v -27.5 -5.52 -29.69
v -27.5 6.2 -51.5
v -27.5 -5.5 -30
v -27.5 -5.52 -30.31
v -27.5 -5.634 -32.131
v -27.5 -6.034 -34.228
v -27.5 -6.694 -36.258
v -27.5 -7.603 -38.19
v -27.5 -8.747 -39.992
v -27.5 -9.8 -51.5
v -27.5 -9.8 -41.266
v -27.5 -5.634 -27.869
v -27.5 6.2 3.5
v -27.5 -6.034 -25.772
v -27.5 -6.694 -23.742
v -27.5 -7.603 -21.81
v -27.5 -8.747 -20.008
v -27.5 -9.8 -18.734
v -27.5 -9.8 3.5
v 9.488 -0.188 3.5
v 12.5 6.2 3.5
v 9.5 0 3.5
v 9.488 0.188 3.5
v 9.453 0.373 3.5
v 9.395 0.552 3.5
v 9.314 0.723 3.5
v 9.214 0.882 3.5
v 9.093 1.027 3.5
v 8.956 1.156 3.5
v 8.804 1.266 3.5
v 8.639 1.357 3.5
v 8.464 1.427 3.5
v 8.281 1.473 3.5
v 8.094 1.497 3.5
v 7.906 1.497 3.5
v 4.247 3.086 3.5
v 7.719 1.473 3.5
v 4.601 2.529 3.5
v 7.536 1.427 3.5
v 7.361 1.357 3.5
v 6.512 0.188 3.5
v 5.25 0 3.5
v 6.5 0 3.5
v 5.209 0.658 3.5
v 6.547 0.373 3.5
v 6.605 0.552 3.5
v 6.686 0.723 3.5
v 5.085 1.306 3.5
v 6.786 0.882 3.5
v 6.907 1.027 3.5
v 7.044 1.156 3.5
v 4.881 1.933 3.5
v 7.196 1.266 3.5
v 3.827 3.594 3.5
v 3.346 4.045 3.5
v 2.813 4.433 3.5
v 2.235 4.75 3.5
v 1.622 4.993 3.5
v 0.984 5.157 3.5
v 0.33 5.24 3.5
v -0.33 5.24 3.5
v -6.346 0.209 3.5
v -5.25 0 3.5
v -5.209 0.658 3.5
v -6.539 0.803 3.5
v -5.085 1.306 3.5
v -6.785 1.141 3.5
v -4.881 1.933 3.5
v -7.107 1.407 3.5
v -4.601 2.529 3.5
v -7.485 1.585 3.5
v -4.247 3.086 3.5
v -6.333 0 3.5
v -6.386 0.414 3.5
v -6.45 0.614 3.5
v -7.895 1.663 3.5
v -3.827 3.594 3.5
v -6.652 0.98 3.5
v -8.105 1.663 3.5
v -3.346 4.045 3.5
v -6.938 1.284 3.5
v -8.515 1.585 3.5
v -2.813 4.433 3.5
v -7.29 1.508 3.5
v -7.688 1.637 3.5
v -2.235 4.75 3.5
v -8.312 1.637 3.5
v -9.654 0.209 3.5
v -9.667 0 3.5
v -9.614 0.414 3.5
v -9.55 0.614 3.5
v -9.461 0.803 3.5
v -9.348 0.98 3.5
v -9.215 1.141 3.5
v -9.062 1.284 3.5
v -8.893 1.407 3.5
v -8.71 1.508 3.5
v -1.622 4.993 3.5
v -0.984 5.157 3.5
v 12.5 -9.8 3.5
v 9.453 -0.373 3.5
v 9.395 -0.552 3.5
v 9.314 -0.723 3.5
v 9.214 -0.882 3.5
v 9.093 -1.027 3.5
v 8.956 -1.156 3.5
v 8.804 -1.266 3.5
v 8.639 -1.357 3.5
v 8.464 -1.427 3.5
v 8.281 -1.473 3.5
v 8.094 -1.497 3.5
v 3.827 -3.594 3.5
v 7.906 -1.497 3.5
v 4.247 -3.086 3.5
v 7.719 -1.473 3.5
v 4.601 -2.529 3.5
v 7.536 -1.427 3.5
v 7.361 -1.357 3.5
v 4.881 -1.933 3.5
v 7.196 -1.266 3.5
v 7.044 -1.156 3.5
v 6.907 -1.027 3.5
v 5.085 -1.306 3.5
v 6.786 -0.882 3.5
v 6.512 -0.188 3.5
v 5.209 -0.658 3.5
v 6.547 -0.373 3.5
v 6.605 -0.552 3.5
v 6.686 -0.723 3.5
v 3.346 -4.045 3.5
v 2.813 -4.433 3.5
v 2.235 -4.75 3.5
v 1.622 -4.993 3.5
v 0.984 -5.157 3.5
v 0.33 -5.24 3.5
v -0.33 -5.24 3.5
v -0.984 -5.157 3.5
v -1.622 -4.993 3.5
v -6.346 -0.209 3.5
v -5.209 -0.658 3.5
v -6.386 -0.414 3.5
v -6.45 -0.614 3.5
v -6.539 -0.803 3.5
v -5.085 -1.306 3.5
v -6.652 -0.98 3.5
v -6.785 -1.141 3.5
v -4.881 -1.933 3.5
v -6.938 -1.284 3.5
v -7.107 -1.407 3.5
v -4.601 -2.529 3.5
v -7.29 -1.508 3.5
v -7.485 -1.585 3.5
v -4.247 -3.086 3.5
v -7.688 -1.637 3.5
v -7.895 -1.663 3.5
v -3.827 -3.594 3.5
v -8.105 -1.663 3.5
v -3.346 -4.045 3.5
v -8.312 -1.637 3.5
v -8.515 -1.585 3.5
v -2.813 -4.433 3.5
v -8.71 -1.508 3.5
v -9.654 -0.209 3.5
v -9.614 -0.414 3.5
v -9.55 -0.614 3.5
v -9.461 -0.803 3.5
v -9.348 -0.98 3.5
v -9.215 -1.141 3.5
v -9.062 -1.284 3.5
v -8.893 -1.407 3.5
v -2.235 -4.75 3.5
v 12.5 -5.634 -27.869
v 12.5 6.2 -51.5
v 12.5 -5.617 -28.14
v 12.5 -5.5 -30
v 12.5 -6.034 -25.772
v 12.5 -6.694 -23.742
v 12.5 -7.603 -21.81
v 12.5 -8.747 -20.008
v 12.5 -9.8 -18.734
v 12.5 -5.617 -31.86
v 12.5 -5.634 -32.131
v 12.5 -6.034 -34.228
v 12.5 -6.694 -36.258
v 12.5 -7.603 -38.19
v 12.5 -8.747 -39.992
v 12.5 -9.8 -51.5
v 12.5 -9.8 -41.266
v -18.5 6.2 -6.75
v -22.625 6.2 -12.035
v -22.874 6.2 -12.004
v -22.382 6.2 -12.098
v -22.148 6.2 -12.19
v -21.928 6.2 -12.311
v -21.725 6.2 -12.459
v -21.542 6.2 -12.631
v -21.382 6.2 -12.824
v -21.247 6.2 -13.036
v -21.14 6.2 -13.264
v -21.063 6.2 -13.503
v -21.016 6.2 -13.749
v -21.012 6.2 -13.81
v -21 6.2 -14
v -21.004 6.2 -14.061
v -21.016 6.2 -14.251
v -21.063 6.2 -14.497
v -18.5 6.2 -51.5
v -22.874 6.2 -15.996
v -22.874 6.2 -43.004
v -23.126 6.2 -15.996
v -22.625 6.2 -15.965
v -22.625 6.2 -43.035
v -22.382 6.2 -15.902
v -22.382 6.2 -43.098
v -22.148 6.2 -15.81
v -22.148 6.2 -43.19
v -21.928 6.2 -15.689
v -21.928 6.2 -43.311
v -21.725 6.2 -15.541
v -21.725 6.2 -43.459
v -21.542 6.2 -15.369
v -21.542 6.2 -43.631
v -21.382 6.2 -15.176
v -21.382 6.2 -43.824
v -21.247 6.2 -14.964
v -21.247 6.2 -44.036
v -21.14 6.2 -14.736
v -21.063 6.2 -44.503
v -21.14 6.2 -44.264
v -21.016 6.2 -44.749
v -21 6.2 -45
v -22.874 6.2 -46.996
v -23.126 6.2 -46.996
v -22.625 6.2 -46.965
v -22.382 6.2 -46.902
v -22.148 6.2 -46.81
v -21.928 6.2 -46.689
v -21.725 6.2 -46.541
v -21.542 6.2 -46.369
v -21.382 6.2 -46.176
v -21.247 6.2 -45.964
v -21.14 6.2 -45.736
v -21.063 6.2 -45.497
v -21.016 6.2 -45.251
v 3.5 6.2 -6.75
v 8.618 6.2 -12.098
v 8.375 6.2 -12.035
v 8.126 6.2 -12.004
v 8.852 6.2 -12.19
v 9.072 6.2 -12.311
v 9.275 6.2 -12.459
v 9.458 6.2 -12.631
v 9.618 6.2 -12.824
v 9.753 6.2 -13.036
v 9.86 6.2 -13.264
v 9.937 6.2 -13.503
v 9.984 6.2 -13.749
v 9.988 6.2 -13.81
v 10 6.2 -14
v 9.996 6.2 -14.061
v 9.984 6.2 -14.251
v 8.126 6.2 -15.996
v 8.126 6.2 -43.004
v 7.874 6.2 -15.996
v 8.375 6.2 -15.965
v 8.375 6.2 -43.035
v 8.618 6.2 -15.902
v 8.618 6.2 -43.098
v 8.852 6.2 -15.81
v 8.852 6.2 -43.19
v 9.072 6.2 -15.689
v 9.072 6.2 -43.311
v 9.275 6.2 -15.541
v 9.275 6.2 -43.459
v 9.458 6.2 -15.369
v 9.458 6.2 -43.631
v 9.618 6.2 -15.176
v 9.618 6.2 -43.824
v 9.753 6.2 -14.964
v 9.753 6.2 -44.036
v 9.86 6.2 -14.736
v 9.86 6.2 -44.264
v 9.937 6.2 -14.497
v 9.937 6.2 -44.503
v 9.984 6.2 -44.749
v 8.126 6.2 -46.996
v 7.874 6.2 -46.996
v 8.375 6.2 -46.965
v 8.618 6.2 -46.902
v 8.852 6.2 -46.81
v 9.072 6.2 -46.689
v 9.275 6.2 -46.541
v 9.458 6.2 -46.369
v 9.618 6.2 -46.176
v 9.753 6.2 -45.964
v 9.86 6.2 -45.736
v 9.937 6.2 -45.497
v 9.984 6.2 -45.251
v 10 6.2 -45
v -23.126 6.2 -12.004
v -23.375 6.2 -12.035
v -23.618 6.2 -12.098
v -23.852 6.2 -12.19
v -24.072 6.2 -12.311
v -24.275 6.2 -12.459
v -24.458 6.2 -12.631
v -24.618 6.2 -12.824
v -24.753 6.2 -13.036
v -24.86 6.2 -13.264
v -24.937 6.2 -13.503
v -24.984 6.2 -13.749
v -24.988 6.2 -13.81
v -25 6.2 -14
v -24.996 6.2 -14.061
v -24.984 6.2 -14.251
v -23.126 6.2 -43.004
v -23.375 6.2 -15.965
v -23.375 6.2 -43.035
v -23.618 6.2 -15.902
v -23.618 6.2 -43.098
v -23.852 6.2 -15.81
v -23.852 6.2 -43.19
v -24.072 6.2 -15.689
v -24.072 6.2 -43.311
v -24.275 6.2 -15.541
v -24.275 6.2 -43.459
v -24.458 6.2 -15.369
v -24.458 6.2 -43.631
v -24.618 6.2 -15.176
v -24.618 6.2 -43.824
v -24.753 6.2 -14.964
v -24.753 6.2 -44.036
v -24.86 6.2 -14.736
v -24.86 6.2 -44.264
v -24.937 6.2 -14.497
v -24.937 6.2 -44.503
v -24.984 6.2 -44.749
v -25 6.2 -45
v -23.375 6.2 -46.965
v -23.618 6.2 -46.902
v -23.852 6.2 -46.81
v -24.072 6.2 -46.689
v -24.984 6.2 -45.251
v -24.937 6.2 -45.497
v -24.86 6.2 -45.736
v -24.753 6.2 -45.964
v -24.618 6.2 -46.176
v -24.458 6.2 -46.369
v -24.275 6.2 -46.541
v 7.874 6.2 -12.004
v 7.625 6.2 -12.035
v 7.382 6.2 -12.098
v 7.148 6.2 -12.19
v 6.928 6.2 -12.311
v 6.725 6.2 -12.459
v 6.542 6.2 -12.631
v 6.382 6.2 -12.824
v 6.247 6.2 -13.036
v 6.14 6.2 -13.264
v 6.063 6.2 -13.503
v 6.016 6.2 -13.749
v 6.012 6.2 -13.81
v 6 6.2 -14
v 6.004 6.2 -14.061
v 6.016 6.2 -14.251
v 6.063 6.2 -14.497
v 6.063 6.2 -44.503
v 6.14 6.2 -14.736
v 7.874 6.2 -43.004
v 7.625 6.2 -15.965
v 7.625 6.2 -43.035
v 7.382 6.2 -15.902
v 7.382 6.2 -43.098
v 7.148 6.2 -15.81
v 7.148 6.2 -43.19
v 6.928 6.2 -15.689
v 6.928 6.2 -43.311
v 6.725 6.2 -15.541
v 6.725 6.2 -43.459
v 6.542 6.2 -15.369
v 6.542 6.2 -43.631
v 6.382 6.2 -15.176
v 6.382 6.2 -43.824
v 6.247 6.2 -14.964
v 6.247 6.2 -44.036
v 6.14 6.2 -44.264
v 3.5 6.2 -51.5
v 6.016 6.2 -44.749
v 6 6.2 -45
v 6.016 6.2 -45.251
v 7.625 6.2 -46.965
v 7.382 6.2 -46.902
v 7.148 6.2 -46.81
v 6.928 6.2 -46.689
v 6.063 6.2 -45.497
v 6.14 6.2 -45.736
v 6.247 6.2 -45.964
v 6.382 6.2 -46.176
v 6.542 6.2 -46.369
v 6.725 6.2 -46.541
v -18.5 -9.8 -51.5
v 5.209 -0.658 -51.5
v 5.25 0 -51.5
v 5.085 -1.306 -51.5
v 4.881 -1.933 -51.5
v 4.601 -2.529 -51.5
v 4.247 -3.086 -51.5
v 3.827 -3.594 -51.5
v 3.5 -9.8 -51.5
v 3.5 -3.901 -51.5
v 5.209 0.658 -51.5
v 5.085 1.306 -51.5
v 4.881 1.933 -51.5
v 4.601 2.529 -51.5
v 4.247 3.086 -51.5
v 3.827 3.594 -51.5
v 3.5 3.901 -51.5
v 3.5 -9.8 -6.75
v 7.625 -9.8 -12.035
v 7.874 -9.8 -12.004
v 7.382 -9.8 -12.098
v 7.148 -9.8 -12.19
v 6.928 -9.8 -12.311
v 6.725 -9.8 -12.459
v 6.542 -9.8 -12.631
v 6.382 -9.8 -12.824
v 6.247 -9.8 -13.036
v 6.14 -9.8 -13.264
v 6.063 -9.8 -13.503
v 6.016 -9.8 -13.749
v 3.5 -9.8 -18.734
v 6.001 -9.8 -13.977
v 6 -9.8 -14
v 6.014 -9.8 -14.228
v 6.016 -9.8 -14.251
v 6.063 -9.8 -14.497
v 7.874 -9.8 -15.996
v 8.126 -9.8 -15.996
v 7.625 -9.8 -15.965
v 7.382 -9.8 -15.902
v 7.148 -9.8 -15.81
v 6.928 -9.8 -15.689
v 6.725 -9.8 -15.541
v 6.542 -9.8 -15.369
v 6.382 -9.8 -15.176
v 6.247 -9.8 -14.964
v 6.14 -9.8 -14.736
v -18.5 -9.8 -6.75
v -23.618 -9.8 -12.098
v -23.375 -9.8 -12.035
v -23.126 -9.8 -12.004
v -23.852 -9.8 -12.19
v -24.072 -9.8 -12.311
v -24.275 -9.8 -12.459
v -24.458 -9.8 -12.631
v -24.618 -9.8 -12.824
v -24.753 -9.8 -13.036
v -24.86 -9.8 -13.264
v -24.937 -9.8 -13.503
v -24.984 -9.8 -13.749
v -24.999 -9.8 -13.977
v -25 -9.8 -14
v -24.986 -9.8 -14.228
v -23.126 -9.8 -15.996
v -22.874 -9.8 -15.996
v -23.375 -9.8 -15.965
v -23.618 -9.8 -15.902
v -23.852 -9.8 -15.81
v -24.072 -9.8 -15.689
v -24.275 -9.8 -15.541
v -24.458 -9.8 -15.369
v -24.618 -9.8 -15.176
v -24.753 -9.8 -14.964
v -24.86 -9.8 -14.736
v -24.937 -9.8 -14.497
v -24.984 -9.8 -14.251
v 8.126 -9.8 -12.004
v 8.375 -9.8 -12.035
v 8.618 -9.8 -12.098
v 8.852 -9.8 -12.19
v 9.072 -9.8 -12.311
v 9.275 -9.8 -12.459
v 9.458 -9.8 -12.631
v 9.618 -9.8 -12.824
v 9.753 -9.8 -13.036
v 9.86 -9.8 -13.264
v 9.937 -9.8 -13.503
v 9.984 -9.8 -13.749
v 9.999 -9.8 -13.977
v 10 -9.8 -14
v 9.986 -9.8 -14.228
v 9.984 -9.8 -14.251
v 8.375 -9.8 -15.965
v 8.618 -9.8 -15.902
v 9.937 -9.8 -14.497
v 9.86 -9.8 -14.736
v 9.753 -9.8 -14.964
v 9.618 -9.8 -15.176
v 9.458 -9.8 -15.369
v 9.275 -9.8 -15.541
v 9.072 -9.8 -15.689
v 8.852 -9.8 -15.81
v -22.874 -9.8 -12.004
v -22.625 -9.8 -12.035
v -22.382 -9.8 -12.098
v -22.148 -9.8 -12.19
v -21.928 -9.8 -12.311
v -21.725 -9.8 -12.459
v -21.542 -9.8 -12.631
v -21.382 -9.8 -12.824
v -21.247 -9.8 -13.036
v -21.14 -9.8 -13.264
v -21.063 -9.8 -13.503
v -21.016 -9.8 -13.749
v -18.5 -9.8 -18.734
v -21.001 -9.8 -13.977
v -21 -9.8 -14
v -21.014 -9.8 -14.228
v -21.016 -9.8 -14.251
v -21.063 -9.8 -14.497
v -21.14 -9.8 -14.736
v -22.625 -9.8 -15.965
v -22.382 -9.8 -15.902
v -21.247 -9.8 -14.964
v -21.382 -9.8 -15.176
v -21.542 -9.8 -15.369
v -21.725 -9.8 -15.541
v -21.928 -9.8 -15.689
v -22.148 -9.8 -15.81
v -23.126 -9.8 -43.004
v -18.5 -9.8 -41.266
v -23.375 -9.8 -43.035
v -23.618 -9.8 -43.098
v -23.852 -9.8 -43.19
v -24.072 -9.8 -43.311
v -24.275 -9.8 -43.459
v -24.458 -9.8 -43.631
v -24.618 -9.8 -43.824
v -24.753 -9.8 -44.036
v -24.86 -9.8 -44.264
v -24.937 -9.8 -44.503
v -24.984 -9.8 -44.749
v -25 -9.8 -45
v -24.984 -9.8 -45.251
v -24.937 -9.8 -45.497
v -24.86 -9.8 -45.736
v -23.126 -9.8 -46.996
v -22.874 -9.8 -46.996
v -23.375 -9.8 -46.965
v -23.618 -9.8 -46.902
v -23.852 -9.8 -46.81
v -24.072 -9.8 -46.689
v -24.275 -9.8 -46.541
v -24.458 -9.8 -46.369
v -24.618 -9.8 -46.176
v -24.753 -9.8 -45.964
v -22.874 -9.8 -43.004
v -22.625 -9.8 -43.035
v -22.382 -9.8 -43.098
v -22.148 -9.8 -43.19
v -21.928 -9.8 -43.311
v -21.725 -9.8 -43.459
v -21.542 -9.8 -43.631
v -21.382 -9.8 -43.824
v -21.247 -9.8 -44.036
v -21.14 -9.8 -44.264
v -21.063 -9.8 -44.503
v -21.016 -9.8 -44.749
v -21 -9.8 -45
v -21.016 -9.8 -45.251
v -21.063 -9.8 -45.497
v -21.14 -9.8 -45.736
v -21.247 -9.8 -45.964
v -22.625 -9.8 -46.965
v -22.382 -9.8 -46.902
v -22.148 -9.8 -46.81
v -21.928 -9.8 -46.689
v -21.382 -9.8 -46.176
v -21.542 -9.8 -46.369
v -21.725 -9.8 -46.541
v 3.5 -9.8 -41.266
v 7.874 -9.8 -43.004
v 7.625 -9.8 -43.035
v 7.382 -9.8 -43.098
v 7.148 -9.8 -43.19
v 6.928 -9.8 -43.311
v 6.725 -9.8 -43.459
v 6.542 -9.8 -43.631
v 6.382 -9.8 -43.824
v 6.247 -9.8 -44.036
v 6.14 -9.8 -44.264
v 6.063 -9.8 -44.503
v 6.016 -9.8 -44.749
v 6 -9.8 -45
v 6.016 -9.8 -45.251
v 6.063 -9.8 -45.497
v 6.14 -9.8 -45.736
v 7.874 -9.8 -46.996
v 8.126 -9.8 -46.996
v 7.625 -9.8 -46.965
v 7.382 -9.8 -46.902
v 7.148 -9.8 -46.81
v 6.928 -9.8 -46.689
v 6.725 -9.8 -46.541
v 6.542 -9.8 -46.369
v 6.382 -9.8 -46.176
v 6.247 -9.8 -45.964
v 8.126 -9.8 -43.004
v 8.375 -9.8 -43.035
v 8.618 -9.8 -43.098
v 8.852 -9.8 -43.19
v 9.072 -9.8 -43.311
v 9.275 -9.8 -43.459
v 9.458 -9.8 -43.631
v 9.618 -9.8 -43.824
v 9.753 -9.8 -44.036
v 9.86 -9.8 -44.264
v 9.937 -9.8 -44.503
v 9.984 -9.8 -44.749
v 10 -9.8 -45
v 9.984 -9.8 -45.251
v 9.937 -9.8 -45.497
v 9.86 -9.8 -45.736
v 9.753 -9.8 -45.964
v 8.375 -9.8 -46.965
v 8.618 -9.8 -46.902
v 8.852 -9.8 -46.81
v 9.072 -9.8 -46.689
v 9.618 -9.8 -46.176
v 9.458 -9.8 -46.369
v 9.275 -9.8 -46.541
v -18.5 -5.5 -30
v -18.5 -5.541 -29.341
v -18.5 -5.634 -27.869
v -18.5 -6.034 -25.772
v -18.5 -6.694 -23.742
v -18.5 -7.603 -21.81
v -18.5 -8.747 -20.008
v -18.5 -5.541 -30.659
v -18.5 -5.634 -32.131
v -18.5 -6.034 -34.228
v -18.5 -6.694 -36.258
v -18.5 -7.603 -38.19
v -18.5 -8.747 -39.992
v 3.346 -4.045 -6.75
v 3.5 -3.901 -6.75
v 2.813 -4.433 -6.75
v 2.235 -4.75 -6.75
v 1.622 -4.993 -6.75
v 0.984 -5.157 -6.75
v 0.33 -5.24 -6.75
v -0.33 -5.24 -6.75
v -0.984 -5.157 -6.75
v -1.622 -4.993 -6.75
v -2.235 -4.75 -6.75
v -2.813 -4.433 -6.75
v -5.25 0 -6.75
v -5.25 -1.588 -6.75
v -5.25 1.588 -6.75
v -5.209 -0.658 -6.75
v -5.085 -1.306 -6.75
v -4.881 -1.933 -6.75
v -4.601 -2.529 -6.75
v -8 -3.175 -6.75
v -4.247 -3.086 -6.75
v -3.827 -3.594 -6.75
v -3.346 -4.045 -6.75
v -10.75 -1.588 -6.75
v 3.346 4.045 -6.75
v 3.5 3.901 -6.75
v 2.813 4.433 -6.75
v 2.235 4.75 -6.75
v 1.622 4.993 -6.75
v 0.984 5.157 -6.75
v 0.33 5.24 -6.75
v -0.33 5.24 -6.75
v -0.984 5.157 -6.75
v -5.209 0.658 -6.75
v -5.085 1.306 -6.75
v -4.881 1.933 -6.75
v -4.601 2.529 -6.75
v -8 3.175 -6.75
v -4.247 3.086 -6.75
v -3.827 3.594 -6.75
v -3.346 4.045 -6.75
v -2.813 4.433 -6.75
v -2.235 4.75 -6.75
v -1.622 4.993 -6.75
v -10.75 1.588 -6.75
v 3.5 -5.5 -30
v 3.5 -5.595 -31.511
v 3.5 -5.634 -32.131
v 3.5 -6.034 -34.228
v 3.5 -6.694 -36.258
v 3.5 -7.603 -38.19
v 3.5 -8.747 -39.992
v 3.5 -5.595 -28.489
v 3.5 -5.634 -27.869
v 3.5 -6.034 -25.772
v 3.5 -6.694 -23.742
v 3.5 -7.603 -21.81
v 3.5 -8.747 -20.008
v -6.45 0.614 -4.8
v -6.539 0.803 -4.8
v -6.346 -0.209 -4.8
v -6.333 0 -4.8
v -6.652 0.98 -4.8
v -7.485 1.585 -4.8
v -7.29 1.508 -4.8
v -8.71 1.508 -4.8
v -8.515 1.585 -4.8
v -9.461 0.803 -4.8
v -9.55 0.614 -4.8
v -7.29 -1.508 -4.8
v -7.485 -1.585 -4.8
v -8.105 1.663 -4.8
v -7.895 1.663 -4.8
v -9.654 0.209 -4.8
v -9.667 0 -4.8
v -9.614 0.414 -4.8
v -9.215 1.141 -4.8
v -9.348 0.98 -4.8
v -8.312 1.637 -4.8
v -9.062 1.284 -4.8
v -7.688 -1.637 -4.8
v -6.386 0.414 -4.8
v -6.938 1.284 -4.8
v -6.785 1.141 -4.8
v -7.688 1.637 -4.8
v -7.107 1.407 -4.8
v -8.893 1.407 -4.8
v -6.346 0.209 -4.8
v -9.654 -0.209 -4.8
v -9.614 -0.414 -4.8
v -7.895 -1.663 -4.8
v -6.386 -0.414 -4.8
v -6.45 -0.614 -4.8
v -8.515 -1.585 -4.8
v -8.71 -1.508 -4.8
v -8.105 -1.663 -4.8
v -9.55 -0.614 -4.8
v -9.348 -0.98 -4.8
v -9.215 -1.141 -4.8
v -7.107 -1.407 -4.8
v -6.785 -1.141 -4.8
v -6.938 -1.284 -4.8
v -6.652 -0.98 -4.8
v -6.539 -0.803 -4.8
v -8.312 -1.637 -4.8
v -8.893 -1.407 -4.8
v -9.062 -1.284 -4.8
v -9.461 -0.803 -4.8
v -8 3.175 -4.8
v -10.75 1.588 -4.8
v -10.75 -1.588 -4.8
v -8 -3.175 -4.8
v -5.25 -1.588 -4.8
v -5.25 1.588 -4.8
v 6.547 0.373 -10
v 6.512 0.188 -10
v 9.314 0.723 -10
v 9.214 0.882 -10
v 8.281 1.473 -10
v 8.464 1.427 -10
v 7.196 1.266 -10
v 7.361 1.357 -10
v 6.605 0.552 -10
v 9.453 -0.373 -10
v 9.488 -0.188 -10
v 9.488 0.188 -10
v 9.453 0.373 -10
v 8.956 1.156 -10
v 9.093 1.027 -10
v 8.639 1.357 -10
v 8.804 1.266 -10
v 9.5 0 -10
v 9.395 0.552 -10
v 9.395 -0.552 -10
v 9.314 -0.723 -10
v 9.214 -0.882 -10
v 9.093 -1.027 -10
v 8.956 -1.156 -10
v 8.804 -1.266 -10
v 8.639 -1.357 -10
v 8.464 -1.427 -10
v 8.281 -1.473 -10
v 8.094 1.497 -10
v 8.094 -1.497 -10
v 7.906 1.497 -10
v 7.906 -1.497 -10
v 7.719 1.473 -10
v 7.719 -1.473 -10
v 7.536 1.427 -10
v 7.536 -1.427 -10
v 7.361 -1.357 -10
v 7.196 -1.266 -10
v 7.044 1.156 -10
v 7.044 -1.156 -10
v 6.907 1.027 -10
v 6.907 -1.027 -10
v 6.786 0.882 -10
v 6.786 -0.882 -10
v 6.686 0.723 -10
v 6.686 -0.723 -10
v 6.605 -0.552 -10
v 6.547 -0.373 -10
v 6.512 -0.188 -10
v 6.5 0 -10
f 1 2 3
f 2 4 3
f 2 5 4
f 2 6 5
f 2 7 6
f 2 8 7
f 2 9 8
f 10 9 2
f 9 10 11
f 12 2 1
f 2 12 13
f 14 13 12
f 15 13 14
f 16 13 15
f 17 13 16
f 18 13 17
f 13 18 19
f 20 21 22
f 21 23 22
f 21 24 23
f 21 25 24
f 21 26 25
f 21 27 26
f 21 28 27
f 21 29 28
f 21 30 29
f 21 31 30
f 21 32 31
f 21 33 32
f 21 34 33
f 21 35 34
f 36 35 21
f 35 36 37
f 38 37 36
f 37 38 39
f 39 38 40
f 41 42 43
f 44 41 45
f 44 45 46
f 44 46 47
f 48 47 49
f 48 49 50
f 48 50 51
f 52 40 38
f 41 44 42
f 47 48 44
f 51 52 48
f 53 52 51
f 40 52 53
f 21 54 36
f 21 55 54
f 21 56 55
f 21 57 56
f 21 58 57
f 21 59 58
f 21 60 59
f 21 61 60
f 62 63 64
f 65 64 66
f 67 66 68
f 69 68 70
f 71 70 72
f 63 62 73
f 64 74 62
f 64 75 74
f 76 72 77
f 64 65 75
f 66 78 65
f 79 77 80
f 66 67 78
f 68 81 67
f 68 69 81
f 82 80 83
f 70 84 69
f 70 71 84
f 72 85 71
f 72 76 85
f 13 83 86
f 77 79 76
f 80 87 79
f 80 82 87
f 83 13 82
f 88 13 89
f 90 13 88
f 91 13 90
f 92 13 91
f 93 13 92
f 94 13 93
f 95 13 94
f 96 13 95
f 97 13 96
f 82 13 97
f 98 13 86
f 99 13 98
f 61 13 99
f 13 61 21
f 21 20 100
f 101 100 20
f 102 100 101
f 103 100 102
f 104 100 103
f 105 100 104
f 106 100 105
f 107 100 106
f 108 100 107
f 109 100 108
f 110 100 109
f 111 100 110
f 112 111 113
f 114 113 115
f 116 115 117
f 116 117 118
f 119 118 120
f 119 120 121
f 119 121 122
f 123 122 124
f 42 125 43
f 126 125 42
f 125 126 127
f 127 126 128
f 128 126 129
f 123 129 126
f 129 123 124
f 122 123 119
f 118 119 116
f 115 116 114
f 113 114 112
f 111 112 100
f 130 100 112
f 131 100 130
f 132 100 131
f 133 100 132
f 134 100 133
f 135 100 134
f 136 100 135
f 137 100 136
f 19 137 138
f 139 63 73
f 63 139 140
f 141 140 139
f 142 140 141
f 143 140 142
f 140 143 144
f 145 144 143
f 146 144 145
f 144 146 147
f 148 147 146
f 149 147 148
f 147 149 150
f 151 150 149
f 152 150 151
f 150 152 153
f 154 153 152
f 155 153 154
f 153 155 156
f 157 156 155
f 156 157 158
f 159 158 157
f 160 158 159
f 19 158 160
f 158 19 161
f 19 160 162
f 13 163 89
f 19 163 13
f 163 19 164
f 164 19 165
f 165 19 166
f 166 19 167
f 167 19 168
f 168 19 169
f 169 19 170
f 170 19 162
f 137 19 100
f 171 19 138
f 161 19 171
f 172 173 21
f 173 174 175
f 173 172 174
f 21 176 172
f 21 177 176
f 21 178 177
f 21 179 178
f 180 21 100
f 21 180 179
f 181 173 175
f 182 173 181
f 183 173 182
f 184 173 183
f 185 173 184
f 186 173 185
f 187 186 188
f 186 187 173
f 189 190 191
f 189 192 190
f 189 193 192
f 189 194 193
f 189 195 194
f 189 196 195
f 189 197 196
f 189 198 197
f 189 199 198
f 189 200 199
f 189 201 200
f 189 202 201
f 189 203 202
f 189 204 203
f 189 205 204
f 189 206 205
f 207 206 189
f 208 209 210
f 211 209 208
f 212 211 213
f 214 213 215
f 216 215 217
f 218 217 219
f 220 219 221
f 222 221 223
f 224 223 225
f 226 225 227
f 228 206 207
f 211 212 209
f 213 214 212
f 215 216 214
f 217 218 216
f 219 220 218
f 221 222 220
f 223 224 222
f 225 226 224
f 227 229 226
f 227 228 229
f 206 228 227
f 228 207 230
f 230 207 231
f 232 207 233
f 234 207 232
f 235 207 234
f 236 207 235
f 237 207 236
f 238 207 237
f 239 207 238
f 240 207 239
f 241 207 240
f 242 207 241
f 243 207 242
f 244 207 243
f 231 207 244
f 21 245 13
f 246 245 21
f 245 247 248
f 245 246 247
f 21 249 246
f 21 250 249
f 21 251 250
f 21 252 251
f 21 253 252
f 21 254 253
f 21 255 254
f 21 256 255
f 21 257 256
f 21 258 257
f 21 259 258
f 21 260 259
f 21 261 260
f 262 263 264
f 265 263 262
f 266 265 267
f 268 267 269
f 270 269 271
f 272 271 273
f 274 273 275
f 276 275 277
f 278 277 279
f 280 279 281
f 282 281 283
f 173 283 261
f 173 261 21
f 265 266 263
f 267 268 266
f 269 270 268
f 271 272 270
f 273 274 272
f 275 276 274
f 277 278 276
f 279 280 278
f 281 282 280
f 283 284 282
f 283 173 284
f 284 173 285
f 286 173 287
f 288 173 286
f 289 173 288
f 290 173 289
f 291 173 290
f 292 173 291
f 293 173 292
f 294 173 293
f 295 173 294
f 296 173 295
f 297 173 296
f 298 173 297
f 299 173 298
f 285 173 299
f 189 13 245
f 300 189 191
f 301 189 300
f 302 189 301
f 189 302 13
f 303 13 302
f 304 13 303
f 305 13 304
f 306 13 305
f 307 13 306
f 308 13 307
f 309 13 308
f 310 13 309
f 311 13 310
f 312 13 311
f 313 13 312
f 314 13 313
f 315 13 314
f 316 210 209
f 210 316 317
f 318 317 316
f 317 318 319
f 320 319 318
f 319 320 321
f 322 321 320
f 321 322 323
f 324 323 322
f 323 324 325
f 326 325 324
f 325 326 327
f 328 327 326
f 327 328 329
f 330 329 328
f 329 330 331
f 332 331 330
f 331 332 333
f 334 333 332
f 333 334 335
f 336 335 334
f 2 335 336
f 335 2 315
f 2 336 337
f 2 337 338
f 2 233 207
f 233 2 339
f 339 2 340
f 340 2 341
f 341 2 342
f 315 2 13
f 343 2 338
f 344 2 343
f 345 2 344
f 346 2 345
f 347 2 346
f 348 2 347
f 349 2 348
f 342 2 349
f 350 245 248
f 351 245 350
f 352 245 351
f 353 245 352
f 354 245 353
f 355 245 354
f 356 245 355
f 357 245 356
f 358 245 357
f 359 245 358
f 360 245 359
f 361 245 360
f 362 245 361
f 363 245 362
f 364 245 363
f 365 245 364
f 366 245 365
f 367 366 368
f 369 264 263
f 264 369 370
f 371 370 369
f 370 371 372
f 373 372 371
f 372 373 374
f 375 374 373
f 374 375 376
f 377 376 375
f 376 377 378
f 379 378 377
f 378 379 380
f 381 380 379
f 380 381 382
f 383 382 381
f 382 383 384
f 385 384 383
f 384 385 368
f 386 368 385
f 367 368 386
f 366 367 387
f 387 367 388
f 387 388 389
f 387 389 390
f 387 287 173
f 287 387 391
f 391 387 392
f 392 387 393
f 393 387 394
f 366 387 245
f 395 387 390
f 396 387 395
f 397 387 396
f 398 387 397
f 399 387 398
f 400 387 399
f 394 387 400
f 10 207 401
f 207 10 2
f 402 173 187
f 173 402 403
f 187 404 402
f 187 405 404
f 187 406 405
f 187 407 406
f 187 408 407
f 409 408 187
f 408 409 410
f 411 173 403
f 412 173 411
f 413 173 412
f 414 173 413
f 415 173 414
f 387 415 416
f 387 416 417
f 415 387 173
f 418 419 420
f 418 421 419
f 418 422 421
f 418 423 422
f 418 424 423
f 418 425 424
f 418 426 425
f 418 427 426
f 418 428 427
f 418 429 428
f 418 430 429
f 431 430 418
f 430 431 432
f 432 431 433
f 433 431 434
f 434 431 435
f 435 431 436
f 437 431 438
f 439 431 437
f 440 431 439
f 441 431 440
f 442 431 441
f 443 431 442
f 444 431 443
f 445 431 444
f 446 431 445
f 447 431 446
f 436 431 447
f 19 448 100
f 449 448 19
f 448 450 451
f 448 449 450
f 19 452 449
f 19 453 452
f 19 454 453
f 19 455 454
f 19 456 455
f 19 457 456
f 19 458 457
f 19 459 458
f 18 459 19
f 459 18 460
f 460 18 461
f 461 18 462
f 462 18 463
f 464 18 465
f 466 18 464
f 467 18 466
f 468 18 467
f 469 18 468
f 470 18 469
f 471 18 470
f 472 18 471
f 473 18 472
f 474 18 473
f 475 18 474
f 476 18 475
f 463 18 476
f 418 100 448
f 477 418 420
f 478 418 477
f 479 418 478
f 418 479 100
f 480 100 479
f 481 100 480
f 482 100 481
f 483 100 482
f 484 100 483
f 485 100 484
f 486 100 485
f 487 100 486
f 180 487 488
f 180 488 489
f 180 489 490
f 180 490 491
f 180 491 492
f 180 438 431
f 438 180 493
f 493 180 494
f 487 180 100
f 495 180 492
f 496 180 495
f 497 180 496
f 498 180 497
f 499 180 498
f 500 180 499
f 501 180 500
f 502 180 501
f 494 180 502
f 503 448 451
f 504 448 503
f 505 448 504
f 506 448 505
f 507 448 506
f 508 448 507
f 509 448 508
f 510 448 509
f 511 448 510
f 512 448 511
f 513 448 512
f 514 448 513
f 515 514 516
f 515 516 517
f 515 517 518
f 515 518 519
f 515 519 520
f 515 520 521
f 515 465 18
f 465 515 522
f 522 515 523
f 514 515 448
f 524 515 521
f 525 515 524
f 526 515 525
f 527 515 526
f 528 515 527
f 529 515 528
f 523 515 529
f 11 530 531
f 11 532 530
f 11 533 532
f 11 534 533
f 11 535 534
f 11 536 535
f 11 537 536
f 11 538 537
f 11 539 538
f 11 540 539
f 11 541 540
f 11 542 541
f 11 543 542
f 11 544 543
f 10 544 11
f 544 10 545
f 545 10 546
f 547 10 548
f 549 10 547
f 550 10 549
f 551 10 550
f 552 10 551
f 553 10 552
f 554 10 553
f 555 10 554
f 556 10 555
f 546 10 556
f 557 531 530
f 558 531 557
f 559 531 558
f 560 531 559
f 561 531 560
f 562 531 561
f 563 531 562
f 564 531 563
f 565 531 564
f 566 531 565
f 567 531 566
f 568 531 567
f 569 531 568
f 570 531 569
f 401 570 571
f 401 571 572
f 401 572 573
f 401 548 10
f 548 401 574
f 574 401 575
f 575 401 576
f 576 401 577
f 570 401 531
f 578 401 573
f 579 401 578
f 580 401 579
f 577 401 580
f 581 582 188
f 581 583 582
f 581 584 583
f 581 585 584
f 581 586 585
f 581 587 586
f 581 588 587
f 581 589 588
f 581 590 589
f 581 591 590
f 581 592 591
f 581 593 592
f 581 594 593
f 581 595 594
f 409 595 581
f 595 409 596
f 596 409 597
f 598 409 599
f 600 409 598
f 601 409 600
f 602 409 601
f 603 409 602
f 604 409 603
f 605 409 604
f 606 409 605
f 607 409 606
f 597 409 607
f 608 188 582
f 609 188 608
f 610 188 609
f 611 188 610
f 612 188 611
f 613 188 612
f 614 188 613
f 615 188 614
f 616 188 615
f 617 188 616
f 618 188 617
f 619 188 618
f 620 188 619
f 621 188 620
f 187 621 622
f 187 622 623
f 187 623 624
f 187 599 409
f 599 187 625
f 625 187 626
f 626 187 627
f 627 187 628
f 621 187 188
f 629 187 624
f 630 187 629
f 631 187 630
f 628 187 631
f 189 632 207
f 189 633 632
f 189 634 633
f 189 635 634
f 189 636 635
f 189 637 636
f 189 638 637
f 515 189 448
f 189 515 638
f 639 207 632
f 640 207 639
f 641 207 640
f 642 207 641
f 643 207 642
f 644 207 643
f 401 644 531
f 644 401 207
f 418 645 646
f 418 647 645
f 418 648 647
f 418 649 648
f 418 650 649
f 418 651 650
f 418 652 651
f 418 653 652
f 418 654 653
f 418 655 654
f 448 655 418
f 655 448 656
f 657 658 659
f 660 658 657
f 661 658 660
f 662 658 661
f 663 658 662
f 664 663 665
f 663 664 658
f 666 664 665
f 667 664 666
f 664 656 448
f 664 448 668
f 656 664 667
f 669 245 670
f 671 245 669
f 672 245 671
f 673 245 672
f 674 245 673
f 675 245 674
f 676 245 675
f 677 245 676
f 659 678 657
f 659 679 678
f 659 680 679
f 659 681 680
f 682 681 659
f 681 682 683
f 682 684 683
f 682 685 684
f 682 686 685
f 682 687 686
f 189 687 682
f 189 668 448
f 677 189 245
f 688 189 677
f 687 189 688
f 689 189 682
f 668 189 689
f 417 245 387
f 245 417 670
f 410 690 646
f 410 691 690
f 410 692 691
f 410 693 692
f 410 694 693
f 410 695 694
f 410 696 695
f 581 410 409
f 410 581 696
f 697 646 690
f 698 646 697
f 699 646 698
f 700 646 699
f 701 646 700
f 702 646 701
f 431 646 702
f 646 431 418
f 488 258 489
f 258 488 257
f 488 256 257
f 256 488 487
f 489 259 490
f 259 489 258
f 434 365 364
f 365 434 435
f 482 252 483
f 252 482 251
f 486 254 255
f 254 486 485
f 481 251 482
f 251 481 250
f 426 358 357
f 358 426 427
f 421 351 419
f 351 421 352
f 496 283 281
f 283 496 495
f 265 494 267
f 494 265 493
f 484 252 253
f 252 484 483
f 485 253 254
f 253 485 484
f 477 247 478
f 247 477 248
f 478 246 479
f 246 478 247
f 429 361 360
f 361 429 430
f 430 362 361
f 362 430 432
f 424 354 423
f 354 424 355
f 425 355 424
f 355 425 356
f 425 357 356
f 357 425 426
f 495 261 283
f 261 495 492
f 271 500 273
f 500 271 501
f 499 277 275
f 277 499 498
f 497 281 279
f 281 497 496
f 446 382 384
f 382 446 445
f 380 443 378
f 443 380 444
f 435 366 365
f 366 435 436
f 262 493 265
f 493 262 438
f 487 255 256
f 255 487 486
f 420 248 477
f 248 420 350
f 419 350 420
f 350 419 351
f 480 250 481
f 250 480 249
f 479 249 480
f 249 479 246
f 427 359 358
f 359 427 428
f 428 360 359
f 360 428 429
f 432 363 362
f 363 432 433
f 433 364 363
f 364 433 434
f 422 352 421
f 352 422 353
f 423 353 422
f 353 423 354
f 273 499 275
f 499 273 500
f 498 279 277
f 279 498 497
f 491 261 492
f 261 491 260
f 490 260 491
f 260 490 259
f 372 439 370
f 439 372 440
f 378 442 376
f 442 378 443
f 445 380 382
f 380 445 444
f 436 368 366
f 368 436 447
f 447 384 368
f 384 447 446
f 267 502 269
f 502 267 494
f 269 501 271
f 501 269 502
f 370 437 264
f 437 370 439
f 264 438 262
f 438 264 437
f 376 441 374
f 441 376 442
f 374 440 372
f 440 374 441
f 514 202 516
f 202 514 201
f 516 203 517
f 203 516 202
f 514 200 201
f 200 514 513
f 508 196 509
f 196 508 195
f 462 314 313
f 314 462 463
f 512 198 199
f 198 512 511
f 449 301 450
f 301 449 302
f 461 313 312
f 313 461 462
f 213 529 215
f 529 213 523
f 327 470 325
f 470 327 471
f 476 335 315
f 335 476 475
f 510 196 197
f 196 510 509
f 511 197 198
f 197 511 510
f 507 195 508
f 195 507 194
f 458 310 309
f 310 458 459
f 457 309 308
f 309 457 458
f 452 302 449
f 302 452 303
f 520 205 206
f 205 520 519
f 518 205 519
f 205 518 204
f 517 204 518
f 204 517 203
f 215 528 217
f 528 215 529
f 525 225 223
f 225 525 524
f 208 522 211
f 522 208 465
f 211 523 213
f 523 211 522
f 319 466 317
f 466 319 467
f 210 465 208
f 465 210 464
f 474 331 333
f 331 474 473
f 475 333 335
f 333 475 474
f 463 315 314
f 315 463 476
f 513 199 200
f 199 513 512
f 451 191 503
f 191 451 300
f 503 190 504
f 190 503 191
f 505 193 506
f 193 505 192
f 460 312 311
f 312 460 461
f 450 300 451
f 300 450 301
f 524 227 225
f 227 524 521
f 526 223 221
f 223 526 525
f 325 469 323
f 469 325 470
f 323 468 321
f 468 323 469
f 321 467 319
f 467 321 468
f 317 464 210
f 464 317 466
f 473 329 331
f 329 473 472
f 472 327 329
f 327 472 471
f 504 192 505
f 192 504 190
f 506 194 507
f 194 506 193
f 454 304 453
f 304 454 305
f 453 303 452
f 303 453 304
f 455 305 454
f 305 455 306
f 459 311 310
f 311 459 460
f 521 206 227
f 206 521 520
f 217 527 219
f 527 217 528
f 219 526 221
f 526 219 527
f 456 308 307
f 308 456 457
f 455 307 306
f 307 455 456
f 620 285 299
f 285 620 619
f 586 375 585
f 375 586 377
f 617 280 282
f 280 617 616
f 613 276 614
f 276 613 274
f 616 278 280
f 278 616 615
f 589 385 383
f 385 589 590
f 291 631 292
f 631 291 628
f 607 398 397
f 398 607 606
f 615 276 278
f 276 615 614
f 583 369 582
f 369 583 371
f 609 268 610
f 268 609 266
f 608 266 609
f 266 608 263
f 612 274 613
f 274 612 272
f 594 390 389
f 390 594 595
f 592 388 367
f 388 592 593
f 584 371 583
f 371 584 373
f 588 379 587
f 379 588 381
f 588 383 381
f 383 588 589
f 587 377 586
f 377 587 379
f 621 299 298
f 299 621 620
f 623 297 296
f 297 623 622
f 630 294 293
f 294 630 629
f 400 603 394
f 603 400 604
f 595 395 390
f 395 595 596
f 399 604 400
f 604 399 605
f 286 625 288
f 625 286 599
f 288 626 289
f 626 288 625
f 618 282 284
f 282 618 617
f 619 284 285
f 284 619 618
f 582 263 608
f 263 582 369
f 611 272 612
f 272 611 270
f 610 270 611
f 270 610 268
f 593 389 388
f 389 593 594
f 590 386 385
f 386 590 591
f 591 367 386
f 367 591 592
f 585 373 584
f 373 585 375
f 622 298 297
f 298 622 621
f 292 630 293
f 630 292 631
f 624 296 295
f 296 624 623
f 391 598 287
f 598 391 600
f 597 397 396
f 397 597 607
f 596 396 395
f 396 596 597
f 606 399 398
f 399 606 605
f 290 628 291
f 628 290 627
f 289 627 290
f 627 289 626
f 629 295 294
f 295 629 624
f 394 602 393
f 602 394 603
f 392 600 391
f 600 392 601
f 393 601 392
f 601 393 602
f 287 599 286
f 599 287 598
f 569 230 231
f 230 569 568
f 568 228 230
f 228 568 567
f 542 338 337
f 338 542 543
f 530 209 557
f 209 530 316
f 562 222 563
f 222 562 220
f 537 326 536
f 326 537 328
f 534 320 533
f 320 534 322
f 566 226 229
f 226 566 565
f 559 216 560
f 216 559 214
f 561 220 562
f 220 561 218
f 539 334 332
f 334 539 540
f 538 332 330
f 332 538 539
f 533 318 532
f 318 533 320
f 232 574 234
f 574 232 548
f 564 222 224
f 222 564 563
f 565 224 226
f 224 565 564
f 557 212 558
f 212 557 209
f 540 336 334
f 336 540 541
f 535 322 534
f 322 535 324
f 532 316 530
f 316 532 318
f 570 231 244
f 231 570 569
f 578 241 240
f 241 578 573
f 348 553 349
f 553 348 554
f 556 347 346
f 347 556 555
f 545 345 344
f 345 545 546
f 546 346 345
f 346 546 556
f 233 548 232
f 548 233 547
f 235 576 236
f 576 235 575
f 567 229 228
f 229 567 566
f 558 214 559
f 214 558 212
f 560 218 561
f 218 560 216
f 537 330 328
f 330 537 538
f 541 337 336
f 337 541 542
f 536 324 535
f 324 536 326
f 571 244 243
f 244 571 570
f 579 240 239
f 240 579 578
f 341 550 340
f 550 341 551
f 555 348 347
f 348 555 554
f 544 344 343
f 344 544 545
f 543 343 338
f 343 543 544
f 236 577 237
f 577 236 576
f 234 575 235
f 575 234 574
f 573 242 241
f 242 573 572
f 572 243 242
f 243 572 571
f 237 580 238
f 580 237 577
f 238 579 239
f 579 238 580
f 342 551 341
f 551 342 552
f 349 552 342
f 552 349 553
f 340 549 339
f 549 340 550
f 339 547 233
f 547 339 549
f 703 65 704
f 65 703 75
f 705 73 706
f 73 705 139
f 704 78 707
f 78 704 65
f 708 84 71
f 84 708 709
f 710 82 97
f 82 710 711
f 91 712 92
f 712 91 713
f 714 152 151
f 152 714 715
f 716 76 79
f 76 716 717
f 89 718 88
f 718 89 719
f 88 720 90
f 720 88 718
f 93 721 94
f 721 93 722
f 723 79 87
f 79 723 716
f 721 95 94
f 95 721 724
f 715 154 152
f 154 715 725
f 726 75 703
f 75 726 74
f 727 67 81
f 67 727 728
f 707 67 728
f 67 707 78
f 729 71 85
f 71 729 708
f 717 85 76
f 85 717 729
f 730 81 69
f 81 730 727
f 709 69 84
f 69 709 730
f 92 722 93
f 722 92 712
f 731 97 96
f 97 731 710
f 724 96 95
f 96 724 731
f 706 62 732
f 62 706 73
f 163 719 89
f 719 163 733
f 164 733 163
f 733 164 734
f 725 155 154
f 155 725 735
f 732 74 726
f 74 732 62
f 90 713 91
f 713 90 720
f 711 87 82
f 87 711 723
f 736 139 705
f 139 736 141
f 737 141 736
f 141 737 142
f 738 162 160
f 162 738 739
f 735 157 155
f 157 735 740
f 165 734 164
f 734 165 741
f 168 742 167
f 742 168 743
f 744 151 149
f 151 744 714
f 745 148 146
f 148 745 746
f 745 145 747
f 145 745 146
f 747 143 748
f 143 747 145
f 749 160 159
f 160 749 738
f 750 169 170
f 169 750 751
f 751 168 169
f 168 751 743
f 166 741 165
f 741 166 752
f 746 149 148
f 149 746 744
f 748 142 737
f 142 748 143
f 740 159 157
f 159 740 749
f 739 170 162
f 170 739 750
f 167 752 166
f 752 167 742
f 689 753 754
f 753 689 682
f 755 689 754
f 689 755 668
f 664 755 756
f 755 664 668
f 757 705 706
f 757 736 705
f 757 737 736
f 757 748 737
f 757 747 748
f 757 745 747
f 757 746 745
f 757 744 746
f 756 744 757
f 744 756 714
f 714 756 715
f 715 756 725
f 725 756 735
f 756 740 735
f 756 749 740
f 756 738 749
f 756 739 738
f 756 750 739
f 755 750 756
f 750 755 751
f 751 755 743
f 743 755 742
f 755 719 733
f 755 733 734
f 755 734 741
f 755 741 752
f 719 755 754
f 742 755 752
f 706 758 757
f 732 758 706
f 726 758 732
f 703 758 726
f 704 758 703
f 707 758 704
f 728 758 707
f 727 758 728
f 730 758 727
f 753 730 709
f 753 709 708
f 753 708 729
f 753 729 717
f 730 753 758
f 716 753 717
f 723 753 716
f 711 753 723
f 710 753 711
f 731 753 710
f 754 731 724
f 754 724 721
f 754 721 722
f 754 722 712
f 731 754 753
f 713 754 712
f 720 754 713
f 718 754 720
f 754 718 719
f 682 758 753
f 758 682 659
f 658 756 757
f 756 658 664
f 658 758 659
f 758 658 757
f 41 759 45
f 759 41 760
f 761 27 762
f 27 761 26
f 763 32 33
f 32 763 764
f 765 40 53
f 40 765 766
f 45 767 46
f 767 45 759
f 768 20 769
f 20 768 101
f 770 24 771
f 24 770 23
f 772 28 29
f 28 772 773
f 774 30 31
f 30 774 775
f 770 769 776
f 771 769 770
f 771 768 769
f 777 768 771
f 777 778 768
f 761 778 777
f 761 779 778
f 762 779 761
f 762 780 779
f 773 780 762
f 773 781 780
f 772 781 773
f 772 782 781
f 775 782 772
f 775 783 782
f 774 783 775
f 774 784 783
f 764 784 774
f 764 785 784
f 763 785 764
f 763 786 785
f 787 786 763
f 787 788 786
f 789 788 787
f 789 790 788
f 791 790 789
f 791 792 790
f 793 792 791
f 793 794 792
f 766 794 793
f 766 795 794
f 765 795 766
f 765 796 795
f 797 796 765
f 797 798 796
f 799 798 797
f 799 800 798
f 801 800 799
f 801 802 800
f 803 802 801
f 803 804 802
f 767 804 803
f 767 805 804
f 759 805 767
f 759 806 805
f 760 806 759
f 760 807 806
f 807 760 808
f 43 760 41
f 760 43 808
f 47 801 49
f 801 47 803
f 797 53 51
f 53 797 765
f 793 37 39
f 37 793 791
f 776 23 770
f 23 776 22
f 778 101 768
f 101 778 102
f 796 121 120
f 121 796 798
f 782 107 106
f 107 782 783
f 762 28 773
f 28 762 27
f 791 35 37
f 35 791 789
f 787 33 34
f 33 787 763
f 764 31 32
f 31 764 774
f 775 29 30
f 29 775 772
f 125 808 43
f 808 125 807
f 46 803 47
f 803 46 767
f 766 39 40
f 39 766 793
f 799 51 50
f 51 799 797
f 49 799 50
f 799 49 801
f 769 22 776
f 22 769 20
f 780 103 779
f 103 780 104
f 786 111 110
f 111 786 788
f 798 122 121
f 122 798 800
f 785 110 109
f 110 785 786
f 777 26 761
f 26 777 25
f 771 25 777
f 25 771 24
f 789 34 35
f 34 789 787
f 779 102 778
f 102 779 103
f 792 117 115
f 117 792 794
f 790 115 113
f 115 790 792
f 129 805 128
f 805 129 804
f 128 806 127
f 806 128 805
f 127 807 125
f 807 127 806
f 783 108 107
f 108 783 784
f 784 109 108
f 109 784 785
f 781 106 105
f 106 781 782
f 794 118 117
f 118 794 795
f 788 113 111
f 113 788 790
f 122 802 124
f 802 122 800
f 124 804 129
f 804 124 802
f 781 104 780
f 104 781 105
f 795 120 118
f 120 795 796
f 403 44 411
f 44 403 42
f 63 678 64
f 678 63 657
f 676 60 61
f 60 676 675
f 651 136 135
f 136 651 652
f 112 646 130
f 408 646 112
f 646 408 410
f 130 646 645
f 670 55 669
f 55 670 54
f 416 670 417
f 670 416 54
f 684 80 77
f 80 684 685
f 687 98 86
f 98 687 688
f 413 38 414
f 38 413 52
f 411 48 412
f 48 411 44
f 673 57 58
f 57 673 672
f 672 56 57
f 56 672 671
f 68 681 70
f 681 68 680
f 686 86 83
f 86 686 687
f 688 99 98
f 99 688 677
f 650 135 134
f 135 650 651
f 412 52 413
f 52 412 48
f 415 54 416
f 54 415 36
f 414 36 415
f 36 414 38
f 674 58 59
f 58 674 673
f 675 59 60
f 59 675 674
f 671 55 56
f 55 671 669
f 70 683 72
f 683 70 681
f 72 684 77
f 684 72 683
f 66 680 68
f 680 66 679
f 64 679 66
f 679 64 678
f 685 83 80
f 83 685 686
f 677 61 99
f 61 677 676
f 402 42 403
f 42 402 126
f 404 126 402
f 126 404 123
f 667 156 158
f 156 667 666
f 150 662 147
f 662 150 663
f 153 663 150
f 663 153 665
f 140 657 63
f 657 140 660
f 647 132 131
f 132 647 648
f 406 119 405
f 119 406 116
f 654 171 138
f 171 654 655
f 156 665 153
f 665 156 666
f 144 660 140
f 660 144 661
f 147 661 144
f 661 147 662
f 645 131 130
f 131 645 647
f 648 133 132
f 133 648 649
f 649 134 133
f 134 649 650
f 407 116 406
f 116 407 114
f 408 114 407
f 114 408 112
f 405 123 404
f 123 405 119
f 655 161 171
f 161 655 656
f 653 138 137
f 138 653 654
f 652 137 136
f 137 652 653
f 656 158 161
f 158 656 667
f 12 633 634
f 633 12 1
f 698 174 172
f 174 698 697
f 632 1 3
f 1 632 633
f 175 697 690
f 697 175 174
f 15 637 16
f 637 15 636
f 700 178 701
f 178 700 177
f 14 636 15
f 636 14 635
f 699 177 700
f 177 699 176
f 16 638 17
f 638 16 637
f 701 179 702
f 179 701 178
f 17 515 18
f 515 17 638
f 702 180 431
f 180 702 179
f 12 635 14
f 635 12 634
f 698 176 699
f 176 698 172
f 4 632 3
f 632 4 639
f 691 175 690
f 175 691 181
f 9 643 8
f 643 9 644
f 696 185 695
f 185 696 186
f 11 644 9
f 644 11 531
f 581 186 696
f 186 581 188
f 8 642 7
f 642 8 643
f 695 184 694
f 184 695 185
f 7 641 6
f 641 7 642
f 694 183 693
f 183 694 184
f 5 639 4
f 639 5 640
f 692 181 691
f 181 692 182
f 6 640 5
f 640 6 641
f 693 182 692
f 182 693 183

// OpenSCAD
// file: nutsnbolts/data-access.scad
// Norm Nuts and Bolts - a OpenSCAD library
// Copyright (C) 2012  Johannes Kneer

// This program is free software: you can redistribute it and/or modify
// it under the terms of the GNU General Public License as published by
// the Free Software Foundation, either version 3 of the License, or
// (at your option) any later version.

// This program is distributed in the hope that it will be useful,
// but WITHOUT ANY WARRANTY; without even the implied warranty of
// MERCHANTABILITY or FITNESS FOR A PARTICULAR PURPOSE.  See the
// GNU General Public License for more details.

// You should have received a copy of the GNU General Public License
// along with this program.  If not, see <http://www.gnu.org/licenses/>.


// DATABASE ACCESS FUNCTIONS AND CONSTANTS



// == CONSTANTS ==

// screw table access keys
_NB_S_DESC            = 0;
_NB_S_FAMKEY			    = 1;
_NB_S_LENGTH          = 2;
_NB_S_NOTHREAD_LENGTH = 3;

_NB_F_DESC			      = 0;
_NB_F_OUTER_DIA       = 1;
_NB_F_INNER_DIA       = 2;
_NB_F_LEAD            = 3;
_NB_F_KEY             = 4;
_NB_F_KEY_DEPTH       = 5;
_NB_F_HEAD_HEIGHT     = 6;
_NB_F_HEAD_DIA        = 7;
_NB_F_NUT_KEY         = 8;
_NB_F_NUT_HEIGHT      = 9;
_NB_F_PITCH_FINE      = 10;
_NB_F_PITCH_MEDIUM    = 11;
_NB_F_PITCH_COARSE    = 12;


// == FUNCTIONS ==

// _get_screw("descriptor")   with descriptor = M8x25
//   find the line for a general object in the data matrix

function _get_screw(n) = data_screw[search([n], data_screw)[0]];
function _get_screw_fam(n) = data_screw_fam[search([_get_screw(n)[_NB_S_FAMKEY]], data_screw_fam)[0]];

function _get_fam(n) = data_screw_fam[search([n], data_screw_fam)[0]];


// _get_XXXXX("descriptor") functions
// find a single property in the database

function _get_desc(n)        = _get_screw(n)[_NB_S_DESC];
function _get_famkey(n)         = _get_screw(n)[_NB_S_FAMKEY];
function _get_length(n)      = _get_screw(n)[_NB_S_LENGTH];
function _get_nt_length(n)   = _get_screw(n)[_NB_S_NOTHREAD_LENGTH];

function _get_outer_dia(n)   = _get_screw_fam(n)[_NB_F_OUTER_DIA];
function _get_inner_dia(n)   = _get_screw_fam(n)[_NB_F_INNER_DIA];
function _get_lead(n)        = _get_screw_fam(n)[_NB_F_LEAD];
function _get_head_height(n) = _get_screw_fam(n)[_NB_F_HEAD_HEIGHT];
function _get_head_dia(n)    = _get_screw_fam(n)[_NB_F_HEAD_DIA];
function _get_nut_key(n)     = _get_screw_fam(n)[_NB_F_NUT_KEY];
function _get_nut_height(n)  = _get_screw_fam(n)[_NB_F_NUT_HEIGHT];
function _get_fine_pitch(n)  = _get_screw_fam(n)[_NB_F_PITCH_FINE];
function _get_medium_pitch(n)  = _get_screw_fam(n)[_NB_F_PITCH_MEDIUM];
function _get_coarse_pitch(n)  = _get_screw_fam(n)[_NB_F_PITCH_COARSE];
// main file
// PrintrBot Simple Metal 8mm Z Nut
// Increase resolution
$fn=50;

// Pull in nut/bolt library
include <nutsnbolts/cyl_head_bolt.scad>;

// Tolerance
buff = .5;

// Main dimensions
base_z = 55;
base_x = 40; 
base_y = 16;
void_y = base_y + 2;
void_x = base_x - 18;
void_z = (base_z * 1.5);

// Mounting holes
nema_dia = 4;
screw_dia = 3;
trap_depth = 2;

// Brass nut analog
bn_dia = 10;
bn_z = 15;
bn_f_z = 3.6;
bn_f_dia = 22;

module brass_nut()
{
    color("Goldenrod")
    {
        difference()
        {   
            union()
            {
                cylinder(h=bn_z, r=(bn_dia / 2), center=true);
                translate([0, 0, 5])
                    cylinder(h=bn_f_z, r=(bn_f_dia / 2), center=true);
            }   
            
            // Center opening
            cylinder(h=(bn_z + 5), r=4, center=true);
            
            // Screw holes
            translate([8, 0, 0])
                cylinder(h=(bn_z + 5), r=1.5, center=true);
            translate([-8, 0, 0])
                cylinder(h=(bn_z + 5), r=1.5, center=true);             
            translate([0, 8, 0])
                cylinder(h=(bn_z + 5), r=1.5, center=true);
            translate([0, -8, 0])
                cylinder(h=(bn_z + 5), r=1.5, center=true); 
        }
    }
}

module nema_mount()
{
    translate([8, 0, -14])
        rotate([90, 0, 0])
            cylinder(h=(base_y * 1.5), r=(nema_dia / 2), center=true);
    
    translate([-23, 0, -14])
        rotate([90, 0, 0])
            cylinder(h=(base_y * 1.5), r=(nema_dia / 2), center=true);
     
    translate([8, 0, -45])
        rotate([90, 0, 0])
            cylinder(h=(base_y * 1.5), r=(nema_dia / 2), center=true);
    
    translate([-23, 0, -45])
        rotate([90, 0, 0])
            cylinder(h=(base_y * 1.5), r=(nema_dia / 2), center=true);    
}

module body()
{
    cube([base_x, base_y, base_z], center=true);
}

module brass_void()
{
    cylinder(h=(base_z * 3), r=((bn_dia / 2) + (buff / 2)), center=true);
}

module mounting_holes()
{
    translate([8, 0, 0])
        cylinder(h=(bn_z + 5), r=(screw_dia / 2), center=true);

    translate([-8, 0, 0])
    {
        cylinder(h=(bn_z + 5), r=(screw_dia / 1.8), center=true);  
        translate([0, 0, -4.8])
            rotate([0, 0, 90])
                nutcatch_parallel("M3", l=trap_depth);
    }
}

module outer_shape()
{
    translate([-7.5, -1.8, -24])
    {
        difference()
        {
            body();
        
            translate([0, 0, -24])
                cube([void_x, void_y, void_z], center=true);
        }
    }
}

module z_nut()
{
    difference()
    {
        outer_shape();
        brass_void();
        nema_mount();
        mounting_holes();
    }
}

// Rendering
//brass_nut();
difference()
{
    z_nut();
    
    translate([-8, -22.5, -30]) rotate([90, 0, 90])
        cylinder(h=55, r=17, center=true);      
}
// EOF
